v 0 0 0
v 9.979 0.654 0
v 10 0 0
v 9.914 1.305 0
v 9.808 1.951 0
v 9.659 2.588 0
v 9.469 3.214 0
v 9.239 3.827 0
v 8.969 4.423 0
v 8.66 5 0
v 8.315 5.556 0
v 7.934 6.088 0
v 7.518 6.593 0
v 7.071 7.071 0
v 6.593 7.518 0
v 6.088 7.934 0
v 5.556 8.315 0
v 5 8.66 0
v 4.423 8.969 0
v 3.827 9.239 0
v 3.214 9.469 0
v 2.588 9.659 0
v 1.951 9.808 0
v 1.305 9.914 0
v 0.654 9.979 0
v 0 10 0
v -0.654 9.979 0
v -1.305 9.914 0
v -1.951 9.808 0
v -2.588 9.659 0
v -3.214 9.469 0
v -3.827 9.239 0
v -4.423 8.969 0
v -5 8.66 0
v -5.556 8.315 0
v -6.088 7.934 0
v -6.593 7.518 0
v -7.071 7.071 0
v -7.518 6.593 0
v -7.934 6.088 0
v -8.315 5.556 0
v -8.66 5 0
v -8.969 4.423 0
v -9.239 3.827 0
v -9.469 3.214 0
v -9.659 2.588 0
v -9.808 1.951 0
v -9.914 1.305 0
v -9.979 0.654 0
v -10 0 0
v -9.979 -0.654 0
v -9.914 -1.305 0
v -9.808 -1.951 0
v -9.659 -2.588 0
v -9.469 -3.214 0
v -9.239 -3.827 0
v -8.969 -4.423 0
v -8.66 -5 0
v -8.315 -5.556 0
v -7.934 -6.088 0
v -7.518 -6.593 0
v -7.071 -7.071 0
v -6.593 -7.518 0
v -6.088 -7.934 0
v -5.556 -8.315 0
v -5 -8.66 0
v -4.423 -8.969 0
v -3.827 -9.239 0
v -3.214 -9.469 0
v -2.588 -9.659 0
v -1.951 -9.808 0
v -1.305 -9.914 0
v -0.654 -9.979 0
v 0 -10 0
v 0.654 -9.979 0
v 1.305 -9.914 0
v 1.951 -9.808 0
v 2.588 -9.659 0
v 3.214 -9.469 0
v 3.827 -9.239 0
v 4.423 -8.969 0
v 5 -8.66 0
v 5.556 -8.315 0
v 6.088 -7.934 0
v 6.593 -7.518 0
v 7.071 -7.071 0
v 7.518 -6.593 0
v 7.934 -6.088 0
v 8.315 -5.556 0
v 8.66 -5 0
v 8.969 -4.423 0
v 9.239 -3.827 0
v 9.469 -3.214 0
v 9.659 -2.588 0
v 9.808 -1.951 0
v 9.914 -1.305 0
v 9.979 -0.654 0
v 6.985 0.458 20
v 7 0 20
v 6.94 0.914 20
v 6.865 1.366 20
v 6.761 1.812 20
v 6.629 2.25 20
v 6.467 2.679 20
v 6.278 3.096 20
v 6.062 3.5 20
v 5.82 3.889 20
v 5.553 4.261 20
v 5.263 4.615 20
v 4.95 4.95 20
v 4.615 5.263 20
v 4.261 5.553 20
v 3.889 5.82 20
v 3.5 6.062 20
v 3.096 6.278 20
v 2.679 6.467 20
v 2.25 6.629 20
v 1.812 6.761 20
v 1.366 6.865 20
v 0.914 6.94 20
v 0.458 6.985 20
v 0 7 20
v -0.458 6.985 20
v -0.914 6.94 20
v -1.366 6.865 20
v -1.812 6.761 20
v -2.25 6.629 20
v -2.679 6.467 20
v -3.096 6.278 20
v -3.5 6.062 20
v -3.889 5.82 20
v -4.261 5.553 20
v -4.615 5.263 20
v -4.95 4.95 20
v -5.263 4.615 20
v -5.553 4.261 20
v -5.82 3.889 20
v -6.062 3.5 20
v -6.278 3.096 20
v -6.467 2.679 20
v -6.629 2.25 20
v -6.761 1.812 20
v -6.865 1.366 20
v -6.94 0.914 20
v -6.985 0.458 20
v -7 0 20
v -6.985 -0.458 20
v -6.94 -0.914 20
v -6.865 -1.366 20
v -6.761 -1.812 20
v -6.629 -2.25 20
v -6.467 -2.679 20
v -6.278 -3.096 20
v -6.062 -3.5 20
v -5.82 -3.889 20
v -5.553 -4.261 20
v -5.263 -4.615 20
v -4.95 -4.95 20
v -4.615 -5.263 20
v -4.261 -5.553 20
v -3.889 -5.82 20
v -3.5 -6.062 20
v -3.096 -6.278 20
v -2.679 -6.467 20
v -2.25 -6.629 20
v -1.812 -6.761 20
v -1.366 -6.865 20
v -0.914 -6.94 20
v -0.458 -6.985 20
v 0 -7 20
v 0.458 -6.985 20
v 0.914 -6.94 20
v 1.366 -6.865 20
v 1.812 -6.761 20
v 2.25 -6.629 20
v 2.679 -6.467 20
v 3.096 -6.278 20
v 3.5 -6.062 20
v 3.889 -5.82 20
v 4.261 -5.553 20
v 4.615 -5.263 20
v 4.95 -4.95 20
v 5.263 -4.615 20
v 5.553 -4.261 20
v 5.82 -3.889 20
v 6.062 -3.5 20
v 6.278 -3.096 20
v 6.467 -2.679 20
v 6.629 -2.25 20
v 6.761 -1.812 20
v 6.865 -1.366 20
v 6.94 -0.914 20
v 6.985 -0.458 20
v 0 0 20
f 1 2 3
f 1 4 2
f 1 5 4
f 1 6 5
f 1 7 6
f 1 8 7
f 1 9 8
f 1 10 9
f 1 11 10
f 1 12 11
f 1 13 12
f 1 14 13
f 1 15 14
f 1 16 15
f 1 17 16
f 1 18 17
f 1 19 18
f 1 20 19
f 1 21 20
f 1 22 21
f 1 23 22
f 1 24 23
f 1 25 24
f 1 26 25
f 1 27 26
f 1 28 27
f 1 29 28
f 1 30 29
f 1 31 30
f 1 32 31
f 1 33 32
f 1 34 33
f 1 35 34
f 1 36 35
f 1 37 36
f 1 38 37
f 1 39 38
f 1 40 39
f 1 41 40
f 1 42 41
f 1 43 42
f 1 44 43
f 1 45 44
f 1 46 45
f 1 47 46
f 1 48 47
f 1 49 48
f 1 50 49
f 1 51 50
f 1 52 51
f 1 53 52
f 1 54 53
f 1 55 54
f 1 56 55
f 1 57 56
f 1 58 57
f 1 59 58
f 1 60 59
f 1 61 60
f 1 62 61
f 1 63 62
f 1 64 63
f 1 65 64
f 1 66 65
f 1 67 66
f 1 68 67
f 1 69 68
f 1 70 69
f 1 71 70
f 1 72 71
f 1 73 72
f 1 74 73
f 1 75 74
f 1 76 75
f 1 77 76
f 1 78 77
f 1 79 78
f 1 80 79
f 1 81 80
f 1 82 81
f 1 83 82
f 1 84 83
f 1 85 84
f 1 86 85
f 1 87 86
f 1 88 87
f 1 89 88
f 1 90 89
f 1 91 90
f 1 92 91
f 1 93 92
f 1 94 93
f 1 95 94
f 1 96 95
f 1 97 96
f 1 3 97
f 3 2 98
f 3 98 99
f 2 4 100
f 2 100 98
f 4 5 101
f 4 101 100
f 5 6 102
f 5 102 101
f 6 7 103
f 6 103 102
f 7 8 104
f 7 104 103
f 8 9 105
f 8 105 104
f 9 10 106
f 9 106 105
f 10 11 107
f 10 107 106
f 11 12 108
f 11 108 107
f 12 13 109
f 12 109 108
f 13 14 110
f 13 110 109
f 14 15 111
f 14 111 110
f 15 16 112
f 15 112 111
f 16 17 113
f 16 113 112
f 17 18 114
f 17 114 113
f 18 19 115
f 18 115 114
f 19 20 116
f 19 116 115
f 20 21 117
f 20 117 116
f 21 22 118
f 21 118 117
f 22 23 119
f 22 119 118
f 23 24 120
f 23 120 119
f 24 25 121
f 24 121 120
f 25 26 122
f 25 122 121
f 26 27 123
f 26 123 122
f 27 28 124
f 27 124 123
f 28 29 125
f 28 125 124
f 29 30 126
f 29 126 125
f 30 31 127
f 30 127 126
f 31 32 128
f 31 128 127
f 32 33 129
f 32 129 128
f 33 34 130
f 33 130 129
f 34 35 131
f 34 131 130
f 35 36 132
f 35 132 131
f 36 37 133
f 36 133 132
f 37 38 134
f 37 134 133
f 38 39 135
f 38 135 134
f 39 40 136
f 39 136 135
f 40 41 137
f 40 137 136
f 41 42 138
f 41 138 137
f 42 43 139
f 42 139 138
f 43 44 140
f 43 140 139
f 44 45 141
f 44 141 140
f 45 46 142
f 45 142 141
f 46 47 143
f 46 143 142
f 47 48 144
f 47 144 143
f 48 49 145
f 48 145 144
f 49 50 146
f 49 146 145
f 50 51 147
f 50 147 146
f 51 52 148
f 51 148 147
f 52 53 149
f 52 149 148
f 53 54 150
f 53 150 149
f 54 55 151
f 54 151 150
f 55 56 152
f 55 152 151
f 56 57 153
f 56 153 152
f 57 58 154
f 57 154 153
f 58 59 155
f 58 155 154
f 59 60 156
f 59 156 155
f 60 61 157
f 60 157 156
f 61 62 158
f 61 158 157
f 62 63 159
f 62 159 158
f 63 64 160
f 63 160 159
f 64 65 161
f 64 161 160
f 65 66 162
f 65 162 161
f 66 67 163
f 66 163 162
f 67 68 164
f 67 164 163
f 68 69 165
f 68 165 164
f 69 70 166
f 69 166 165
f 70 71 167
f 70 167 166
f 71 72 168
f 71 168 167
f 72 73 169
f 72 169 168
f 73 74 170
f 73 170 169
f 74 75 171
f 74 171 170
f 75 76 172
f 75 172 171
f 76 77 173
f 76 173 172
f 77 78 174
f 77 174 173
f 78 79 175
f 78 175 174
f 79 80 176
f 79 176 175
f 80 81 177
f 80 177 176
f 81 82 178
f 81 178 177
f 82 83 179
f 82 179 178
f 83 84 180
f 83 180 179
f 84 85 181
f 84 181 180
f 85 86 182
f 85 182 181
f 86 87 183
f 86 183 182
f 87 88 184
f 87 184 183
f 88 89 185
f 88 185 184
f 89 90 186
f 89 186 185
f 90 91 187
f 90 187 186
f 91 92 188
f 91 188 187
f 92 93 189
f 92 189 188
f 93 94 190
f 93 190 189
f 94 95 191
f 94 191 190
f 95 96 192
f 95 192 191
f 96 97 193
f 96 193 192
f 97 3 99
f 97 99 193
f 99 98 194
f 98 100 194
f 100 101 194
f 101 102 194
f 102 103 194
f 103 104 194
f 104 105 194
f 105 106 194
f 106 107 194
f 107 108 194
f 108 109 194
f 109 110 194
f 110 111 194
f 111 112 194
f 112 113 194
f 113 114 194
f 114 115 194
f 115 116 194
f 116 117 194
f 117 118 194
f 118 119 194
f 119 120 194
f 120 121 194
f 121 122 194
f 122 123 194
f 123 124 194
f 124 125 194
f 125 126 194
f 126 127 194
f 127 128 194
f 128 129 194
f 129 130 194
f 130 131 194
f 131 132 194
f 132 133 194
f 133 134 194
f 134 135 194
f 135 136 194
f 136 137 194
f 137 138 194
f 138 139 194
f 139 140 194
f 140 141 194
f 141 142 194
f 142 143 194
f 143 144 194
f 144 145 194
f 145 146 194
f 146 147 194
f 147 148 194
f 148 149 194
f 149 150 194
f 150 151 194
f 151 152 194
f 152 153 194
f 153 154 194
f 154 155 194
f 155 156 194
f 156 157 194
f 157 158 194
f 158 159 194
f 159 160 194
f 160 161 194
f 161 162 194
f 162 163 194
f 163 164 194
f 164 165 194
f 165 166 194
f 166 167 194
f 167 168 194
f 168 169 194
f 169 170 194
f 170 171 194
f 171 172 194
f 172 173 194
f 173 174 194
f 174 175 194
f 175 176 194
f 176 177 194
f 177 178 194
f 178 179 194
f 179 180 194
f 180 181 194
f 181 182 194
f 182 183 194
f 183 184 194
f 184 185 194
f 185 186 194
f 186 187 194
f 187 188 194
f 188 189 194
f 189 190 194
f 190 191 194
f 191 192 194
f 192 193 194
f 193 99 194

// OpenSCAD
// Original MechIntel educational model. CC0-1.0. Units: mm.
// Not a standardized or load-rated component.
$fn=96;
// Section points: [radius, height], mm. Edit to change the profile.
section=[[0, 0], [10, 0], [7, 20], [0, 20]];
rotate_extrude($fn=96) polygon(points=section);
